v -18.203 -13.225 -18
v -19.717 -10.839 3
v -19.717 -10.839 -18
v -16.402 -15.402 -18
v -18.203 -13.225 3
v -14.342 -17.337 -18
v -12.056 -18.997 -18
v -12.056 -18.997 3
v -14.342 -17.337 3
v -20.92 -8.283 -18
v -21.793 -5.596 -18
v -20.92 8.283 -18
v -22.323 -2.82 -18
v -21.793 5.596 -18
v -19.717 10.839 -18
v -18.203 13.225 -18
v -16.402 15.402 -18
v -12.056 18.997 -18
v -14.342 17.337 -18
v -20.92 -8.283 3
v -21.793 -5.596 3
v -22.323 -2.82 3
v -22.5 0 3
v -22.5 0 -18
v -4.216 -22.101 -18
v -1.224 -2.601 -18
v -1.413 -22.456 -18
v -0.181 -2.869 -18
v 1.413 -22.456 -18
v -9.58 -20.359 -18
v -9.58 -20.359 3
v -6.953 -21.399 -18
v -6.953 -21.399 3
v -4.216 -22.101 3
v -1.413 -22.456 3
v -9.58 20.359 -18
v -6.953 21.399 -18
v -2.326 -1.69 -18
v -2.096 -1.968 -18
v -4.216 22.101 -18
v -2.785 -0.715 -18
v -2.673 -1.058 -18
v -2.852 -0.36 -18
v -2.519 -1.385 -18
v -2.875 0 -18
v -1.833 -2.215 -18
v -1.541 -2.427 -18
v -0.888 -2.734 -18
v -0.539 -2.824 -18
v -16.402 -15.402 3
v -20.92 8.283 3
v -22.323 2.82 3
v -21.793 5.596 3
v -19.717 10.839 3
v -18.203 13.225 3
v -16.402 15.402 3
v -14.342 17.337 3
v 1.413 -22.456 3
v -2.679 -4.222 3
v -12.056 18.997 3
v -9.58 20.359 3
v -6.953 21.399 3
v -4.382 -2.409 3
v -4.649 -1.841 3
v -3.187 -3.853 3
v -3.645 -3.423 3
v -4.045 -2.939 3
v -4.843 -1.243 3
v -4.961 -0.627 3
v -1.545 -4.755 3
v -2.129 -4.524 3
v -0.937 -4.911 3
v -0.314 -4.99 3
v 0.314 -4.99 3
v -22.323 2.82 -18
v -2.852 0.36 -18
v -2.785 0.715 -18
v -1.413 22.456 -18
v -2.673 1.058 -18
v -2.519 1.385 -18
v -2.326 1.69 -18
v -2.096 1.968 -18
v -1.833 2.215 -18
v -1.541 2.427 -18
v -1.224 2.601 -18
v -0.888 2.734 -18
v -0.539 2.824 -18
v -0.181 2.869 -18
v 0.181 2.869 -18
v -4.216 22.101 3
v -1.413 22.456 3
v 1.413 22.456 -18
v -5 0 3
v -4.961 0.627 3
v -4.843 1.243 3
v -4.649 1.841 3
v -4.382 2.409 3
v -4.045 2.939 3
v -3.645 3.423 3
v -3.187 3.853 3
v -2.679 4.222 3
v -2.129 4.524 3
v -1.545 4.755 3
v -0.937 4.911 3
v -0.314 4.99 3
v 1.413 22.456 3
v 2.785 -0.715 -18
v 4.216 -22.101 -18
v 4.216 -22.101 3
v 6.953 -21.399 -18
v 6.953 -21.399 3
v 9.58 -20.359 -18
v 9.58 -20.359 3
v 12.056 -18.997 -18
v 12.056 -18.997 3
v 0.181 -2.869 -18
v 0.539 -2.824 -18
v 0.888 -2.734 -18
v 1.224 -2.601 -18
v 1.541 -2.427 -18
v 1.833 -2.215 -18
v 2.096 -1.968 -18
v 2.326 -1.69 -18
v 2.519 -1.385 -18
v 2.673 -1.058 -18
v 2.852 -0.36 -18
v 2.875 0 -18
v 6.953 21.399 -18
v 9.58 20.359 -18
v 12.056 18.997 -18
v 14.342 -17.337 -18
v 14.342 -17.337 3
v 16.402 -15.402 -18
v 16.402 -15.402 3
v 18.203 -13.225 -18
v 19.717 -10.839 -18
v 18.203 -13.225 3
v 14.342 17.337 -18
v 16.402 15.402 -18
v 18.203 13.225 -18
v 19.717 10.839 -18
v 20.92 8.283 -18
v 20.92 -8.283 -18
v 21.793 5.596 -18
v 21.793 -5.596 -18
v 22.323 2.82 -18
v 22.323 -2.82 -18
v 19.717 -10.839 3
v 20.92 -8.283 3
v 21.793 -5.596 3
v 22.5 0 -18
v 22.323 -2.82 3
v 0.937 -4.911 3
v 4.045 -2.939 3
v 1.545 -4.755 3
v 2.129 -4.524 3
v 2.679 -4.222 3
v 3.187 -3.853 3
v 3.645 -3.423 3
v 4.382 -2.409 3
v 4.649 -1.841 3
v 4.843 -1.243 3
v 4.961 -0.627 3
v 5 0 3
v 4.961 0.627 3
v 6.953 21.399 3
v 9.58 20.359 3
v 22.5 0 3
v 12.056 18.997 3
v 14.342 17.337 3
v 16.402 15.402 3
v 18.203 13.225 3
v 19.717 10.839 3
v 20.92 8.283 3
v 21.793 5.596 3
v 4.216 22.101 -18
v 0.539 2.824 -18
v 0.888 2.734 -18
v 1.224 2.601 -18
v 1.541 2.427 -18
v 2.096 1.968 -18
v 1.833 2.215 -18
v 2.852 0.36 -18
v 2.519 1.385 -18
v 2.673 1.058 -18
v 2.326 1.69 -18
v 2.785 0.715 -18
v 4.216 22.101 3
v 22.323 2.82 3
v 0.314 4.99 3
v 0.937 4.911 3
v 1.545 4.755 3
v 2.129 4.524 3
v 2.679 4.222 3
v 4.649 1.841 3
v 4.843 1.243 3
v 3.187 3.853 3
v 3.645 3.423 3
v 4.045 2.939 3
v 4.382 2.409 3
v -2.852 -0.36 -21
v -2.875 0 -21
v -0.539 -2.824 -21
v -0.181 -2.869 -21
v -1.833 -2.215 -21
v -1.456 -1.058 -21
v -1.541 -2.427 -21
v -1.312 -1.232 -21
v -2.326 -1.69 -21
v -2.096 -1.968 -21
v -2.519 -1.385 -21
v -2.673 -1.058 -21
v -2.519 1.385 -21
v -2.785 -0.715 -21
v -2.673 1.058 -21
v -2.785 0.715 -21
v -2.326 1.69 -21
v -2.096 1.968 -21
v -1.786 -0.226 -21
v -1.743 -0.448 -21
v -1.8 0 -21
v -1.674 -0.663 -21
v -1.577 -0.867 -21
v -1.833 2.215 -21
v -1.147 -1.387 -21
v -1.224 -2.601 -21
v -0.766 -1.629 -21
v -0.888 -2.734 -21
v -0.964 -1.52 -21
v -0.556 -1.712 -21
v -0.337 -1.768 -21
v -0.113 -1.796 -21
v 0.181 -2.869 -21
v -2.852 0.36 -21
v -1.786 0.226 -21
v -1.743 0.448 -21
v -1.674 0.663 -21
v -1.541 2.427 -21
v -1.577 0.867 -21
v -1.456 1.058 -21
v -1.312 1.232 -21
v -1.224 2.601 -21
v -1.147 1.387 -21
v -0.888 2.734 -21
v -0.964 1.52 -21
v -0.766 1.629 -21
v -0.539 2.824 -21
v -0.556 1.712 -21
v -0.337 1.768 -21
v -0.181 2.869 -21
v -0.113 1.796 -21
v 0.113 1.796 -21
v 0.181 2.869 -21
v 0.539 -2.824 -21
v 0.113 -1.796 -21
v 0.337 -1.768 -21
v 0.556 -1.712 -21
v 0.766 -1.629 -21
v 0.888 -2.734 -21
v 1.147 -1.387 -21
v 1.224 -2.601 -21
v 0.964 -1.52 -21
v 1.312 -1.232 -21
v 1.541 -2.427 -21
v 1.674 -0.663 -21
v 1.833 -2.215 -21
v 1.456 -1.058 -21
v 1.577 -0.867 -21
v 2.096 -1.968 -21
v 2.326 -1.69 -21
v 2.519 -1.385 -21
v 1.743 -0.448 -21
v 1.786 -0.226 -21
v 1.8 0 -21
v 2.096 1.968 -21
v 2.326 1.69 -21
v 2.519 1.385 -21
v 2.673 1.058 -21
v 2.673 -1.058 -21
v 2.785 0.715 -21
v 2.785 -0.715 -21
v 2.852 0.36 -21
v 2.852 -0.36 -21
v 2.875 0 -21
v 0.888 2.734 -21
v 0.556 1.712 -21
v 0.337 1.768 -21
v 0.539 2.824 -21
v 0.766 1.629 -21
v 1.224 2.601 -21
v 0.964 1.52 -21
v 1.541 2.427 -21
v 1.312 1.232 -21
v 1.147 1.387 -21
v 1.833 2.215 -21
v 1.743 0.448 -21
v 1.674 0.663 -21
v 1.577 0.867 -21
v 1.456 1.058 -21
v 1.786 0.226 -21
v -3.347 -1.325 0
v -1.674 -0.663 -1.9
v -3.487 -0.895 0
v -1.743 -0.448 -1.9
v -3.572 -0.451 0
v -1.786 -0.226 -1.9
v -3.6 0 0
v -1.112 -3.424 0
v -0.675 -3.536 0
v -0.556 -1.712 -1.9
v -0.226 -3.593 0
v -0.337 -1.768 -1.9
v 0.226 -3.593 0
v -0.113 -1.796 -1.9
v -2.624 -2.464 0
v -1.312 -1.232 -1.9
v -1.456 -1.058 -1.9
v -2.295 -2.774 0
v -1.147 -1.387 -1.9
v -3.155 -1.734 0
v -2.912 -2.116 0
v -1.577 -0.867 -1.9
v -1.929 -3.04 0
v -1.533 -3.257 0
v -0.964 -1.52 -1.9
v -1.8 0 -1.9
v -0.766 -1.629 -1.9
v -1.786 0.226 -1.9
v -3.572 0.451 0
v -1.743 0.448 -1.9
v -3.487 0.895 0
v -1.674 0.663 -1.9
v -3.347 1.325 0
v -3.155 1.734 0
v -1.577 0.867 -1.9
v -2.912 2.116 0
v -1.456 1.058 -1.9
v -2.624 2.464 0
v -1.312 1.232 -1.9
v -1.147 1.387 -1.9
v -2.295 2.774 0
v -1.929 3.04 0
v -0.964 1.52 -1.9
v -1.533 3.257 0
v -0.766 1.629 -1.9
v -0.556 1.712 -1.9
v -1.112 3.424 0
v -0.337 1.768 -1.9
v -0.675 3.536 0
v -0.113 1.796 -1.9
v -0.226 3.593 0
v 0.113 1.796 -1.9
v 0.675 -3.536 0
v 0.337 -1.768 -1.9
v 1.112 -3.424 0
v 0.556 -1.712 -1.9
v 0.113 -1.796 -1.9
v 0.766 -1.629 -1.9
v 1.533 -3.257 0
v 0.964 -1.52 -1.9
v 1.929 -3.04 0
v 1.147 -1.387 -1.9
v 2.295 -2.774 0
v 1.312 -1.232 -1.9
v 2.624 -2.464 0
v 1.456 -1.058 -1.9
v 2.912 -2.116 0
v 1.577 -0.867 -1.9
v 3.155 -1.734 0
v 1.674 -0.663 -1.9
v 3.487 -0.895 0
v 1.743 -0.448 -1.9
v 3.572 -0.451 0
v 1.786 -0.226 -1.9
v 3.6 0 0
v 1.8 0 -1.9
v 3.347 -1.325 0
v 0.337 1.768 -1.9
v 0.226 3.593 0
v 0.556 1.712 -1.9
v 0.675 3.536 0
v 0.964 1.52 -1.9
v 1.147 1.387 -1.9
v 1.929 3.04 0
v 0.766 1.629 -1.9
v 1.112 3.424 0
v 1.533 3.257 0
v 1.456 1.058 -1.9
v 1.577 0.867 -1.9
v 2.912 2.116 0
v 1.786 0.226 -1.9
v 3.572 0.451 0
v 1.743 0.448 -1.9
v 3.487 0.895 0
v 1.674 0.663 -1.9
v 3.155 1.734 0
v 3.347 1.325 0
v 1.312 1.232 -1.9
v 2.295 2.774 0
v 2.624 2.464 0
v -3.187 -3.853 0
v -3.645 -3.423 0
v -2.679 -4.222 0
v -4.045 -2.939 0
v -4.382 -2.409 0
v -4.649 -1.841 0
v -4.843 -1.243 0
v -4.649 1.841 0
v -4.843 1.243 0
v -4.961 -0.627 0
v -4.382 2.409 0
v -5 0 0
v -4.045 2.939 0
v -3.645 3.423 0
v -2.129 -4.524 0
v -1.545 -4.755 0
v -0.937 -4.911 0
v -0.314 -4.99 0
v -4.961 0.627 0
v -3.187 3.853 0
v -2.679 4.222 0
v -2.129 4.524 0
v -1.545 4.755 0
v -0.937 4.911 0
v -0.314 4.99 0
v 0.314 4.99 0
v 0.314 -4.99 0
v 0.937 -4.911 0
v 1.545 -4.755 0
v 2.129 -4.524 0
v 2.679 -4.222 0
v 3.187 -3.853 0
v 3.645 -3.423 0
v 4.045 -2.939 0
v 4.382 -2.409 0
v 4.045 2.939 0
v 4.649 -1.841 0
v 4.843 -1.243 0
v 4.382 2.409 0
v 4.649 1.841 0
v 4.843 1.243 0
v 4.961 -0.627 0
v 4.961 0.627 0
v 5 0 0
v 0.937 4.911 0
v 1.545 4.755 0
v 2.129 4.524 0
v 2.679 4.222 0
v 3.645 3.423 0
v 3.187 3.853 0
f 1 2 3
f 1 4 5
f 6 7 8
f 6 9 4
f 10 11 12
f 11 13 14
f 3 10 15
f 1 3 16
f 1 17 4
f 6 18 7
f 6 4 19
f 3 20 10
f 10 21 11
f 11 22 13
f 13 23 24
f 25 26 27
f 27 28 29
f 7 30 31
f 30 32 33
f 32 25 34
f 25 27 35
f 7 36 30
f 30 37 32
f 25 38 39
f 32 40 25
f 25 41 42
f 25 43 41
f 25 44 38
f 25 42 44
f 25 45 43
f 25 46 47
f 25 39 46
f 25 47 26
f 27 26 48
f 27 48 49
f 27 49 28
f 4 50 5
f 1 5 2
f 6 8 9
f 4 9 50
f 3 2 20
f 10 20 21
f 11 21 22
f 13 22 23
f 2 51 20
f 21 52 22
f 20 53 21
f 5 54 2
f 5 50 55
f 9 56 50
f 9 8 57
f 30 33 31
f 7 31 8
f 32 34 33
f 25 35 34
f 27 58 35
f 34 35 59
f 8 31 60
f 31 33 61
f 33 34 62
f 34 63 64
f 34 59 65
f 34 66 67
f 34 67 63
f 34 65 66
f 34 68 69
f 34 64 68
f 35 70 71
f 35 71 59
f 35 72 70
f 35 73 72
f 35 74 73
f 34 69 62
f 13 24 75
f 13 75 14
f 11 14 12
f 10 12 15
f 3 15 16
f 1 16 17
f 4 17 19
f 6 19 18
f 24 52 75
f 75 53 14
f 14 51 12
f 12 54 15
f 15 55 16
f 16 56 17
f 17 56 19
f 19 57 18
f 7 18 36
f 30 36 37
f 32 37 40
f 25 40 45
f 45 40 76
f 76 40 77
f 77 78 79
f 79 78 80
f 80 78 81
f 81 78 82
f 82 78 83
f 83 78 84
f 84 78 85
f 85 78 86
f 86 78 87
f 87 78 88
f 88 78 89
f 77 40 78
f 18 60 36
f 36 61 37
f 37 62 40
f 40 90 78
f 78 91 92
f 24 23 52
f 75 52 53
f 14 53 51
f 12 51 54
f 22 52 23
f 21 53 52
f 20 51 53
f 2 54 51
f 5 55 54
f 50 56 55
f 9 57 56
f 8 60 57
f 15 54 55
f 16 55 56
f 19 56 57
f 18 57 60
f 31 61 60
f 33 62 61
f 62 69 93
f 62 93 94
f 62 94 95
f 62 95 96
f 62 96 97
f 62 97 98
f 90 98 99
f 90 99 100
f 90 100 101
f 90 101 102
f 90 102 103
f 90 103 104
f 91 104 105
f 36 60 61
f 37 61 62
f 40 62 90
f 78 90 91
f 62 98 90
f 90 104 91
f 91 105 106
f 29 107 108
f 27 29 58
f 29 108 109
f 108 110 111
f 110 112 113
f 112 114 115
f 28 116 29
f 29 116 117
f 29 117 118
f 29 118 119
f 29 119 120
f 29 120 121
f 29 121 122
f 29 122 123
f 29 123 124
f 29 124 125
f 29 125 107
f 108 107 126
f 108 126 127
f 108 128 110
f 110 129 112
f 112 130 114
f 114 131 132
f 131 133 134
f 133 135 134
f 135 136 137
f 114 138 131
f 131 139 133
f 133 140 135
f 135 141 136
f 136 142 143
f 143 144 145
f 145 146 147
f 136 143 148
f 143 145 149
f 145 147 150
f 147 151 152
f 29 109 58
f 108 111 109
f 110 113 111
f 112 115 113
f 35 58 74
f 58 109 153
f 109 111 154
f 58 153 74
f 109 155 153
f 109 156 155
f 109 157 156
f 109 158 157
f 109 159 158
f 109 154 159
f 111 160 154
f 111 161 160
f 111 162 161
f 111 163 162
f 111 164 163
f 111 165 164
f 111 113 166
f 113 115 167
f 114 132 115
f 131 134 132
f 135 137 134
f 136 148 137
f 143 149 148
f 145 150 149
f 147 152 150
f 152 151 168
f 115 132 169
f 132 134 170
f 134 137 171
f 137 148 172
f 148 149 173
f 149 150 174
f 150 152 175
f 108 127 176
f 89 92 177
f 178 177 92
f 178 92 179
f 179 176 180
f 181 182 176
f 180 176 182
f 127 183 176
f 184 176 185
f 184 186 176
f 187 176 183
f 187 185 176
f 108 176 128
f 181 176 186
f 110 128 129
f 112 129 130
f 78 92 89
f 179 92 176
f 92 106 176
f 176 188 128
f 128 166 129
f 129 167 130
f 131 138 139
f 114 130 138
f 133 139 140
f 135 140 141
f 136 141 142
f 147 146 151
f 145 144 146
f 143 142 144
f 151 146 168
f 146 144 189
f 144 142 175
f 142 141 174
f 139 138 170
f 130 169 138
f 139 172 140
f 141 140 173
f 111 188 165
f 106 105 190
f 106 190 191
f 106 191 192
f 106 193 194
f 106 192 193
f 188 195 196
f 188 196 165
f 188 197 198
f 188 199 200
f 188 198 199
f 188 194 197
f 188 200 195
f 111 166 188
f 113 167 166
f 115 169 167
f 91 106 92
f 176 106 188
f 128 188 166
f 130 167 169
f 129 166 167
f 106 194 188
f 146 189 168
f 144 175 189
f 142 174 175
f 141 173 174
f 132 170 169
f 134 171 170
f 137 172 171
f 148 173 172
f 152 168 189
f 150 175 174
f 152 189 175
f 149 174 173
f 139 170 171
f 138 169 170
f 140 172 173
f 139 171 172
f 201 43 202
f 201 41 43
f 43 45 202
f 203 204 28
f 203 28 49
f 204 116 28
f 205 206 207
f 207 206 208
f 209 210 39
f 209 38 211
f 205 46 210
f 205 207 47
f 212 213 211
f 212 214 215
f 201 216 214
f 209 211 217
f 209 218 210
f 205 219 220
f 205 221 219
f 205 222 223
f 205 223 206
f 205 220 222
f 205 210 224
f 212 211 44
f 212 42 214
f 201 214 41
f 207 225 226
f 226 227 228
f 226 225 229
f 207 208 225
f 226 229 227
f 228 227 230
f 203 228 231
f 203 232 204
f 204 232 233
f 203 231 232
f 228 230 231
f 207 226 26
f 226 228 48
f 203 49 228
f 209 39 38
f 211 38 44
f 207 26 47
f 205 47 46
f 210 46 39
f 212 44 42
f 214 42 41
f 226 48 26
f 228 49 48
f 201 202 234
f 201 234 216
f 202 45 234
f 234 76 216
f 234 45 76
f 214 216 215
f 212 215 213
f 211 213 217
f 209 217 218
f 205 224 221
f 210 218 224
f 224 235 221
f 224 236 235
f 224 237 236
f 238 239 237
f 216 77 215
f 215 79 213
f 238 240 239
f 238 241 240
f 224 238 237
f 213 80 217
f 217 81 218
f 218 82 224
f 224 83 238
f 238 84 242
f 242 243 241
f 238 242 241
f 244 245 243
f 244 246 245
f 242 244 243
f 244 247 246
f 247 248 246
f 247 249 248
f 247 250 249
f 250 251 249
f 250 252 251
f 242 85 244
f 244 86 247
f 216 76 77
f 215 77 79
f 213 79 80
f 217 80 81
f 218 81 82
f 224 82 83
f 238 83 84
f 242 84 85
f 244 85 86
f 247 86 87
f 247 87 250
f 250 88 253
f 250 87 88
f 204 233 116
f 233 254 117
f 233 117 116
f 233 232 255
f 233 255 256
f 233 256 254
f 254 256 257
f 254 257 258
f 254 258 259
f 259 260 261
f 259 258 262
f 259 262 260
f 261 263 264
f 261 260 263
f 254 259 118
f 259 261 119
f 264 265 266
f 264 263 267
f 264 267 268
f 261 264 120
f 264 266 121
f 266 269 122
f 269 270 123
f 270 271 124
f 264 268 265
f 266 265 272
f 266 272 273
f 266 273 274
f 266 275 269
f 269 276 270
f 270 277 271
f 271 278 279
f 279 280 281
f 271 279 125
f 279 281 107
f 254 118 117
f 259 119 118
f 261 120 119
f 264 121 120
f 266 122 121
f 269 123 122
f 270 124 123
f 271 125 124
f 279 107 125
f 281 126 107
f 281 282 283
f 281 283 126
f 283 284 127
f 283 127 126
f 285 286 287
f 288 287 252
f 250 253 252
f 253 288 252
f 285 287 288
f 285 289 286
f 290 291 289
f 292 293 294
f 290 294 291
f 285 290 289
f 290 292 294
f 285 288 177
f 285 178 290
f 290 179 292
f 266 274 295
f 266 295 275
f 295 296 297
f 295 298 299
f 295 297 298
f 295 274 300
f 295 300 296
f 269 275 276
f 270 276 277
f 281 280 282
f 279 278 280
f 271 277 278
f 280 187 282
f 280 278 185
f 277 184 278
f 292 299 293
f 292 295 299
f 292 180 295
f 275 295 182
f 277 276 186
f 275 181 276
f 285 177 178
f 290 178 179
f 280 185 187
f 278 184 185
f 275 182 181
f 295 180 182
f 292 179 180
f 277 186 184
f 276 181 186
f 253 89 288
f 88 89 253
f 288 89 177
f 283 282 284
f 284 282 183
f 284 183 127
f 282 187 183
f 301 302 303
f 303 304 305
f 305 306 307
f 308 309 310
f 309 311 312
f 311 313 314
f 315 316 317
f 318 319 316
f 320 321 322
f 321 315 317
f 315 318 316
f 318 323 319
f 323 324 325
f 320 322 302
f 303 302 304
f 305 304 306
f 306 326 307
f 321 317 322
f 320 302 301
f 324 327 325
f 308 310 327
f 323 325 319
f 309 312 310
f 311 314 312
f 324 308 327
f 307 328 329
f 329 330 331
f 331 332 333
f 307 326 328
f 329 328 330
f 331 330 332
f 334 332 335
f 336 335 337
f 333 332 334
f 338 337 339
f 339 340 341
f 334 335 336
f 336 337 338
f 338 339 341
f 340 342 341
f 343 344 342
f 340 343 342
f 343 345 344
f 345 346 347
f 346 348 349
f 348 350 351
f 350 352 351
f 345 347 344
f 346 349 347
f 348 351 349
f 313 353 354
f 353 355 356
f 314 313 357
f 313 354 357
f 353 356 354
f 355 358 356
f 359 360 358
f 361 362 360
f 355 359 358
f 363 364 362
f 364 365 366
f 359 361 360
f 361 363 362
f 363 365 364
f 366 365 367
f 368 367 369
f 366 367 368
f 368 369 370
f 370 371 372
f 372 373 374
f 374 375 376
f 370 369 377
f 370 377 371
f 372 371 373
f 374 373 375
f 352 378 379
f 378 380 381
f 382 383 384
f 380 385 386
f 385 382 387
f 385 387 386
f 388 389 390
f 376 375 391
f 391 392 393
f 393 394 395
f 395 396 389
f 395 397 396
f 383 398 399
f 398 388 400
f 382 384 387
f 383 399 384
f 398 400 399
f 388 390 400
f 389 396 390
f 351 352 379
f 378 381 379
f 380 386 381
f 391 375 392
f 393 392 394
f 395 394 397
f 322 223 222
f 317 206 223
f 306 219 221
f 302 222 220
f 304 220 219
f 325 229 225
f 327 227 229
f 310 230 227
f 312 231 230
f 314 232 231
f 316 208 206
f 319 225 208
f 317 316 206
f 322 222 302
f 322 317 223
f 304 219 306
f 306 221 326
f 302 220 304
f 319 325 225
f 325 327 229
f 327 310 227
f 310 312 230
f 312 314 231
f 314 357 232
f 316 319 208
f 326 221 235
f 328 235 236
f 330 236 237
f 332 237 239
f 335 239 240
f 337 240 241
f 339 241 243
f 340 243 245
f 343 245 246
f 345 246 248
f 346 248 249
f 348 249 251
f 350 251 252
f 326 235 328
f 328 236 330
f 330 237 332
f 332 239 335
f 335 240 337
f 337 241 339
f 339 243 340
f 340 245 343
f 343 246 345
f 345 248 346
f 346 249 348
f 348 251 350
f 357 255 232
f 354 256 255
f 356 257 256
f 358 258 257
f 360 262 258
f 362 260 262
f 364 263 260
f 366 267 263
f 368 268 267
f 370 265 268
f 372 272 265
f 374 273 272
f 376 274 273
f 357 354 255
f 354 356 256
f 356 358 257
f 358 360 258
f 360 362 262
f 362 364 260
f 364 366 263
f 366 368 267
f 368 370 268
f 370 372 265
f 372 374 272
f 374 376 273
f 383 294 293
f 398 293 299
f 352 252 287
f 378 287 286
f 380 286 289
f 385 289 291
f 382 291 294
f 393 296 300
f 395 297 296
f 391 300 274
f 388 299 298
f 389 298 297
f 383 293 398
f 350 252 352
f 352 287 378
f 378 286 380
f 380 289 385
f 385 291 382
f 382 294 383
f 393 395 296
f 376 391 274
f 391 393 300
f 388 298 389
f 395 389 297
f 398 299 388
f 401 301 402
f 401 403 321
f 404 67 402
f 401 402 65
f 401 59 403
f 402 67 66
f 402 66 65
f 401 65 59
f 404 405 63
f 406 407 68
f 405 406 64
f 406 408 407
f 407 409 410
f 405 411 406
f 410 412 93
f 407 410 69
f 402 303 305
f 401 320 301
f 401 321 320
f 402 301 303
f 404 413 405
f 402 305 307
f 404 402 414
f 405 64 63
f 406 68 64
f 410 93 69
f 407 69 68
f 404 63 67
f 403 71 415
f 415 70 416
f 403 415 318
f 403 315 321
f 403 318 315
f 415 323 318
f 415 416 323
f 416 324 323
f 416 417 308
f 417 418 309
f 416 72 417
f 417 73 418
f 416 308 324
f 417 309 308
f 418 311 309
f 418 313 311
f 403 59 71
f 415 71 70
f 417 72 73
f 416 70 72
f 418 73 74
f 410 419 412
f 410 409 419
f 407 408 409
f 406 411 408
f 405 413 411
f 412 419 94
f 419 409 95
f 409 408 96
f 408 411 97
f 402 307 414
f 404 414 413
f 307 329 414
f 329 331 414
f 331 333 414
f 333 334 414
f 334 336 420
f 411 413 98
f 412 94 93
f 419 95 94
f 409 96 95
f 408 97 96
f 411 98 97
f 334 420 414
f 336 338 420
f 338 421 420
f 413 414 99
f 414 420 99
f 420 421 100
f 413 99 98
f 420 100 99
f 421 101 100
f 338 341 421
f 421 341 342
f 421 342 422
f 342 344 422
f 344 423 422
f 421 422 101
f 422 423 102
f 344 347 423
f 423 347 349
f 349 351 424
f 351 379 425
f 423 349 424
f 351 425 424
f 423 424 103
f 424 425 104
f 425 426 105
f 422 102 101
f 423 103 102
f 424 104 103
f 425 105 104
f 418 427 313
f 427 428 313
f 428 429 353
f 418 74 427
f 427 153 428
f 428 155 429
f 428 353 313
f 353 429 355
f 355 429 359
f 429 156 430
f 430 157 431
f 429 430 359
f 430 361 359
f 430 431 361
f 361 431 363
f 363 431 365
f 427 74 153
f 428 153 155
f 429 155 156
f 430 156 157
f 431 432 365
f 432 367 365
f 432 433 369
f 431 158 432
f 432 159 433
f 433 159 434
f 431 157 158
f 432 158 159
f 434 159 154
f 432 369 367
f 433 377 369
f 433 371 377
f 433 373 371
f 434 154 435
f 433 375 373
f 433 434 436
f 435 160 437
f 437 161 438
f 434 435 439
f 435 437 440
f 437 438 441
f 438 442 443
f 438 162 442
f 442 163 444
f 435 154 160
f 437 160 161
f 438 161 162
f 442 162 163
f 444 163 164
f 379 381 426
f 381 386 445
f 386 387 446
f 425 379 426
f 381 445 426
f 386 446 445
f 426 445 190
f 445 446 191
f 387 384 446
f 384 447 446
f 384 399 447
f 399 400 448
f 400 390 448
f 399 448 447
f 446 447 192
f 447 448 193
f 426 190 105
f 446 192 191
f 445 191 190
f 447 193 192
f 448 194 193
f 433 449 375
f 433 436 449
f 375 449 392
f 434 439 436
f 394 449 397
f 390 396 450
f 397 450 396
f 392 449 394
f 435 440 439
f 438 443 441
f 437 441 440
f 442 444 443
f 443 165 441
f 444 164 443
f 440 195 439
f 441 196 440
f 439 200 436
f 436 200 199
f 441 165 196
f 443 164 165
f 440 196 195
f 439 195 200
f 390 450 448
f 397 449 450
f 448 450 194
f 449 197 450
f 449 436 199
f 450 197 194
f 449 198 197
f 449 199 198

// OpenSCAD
$fn = 50;

difference() {
	union() {
		translate(v = [0, 0, -18.0]) {
			cylinder(h = 21, r = 22.5);
		}
		#translate(v = [0, 0, -21.0]) {
			cylinder(h = 21, r = 2.875);
		}
	}
	union() {
		translate(v = [0, 0, 0]) {
			rotate(a = [0, 0, 0]) {
				difference() {
					union() {
						translate(v = [0, 0, -21.0]) {
							cylinder(h = 21, r = 1.5);
						}
						translate(v = [0, 0, -1.9]) {
							cylinder(h = 1.9, r1 = 1.8, r2 = 3.6);
						}
						translate(v = [0, 0, -21.0]) {
							cylinder(h = 21, r = 1.8);
						}
						translate(v = [0, 0, -21.0]) {
							cylinder(h = 21, r = 1.5);
						}
					}
					union();
				}
			}
		}
		#cylinder(h = 3, r = 5.0);
	}
}
